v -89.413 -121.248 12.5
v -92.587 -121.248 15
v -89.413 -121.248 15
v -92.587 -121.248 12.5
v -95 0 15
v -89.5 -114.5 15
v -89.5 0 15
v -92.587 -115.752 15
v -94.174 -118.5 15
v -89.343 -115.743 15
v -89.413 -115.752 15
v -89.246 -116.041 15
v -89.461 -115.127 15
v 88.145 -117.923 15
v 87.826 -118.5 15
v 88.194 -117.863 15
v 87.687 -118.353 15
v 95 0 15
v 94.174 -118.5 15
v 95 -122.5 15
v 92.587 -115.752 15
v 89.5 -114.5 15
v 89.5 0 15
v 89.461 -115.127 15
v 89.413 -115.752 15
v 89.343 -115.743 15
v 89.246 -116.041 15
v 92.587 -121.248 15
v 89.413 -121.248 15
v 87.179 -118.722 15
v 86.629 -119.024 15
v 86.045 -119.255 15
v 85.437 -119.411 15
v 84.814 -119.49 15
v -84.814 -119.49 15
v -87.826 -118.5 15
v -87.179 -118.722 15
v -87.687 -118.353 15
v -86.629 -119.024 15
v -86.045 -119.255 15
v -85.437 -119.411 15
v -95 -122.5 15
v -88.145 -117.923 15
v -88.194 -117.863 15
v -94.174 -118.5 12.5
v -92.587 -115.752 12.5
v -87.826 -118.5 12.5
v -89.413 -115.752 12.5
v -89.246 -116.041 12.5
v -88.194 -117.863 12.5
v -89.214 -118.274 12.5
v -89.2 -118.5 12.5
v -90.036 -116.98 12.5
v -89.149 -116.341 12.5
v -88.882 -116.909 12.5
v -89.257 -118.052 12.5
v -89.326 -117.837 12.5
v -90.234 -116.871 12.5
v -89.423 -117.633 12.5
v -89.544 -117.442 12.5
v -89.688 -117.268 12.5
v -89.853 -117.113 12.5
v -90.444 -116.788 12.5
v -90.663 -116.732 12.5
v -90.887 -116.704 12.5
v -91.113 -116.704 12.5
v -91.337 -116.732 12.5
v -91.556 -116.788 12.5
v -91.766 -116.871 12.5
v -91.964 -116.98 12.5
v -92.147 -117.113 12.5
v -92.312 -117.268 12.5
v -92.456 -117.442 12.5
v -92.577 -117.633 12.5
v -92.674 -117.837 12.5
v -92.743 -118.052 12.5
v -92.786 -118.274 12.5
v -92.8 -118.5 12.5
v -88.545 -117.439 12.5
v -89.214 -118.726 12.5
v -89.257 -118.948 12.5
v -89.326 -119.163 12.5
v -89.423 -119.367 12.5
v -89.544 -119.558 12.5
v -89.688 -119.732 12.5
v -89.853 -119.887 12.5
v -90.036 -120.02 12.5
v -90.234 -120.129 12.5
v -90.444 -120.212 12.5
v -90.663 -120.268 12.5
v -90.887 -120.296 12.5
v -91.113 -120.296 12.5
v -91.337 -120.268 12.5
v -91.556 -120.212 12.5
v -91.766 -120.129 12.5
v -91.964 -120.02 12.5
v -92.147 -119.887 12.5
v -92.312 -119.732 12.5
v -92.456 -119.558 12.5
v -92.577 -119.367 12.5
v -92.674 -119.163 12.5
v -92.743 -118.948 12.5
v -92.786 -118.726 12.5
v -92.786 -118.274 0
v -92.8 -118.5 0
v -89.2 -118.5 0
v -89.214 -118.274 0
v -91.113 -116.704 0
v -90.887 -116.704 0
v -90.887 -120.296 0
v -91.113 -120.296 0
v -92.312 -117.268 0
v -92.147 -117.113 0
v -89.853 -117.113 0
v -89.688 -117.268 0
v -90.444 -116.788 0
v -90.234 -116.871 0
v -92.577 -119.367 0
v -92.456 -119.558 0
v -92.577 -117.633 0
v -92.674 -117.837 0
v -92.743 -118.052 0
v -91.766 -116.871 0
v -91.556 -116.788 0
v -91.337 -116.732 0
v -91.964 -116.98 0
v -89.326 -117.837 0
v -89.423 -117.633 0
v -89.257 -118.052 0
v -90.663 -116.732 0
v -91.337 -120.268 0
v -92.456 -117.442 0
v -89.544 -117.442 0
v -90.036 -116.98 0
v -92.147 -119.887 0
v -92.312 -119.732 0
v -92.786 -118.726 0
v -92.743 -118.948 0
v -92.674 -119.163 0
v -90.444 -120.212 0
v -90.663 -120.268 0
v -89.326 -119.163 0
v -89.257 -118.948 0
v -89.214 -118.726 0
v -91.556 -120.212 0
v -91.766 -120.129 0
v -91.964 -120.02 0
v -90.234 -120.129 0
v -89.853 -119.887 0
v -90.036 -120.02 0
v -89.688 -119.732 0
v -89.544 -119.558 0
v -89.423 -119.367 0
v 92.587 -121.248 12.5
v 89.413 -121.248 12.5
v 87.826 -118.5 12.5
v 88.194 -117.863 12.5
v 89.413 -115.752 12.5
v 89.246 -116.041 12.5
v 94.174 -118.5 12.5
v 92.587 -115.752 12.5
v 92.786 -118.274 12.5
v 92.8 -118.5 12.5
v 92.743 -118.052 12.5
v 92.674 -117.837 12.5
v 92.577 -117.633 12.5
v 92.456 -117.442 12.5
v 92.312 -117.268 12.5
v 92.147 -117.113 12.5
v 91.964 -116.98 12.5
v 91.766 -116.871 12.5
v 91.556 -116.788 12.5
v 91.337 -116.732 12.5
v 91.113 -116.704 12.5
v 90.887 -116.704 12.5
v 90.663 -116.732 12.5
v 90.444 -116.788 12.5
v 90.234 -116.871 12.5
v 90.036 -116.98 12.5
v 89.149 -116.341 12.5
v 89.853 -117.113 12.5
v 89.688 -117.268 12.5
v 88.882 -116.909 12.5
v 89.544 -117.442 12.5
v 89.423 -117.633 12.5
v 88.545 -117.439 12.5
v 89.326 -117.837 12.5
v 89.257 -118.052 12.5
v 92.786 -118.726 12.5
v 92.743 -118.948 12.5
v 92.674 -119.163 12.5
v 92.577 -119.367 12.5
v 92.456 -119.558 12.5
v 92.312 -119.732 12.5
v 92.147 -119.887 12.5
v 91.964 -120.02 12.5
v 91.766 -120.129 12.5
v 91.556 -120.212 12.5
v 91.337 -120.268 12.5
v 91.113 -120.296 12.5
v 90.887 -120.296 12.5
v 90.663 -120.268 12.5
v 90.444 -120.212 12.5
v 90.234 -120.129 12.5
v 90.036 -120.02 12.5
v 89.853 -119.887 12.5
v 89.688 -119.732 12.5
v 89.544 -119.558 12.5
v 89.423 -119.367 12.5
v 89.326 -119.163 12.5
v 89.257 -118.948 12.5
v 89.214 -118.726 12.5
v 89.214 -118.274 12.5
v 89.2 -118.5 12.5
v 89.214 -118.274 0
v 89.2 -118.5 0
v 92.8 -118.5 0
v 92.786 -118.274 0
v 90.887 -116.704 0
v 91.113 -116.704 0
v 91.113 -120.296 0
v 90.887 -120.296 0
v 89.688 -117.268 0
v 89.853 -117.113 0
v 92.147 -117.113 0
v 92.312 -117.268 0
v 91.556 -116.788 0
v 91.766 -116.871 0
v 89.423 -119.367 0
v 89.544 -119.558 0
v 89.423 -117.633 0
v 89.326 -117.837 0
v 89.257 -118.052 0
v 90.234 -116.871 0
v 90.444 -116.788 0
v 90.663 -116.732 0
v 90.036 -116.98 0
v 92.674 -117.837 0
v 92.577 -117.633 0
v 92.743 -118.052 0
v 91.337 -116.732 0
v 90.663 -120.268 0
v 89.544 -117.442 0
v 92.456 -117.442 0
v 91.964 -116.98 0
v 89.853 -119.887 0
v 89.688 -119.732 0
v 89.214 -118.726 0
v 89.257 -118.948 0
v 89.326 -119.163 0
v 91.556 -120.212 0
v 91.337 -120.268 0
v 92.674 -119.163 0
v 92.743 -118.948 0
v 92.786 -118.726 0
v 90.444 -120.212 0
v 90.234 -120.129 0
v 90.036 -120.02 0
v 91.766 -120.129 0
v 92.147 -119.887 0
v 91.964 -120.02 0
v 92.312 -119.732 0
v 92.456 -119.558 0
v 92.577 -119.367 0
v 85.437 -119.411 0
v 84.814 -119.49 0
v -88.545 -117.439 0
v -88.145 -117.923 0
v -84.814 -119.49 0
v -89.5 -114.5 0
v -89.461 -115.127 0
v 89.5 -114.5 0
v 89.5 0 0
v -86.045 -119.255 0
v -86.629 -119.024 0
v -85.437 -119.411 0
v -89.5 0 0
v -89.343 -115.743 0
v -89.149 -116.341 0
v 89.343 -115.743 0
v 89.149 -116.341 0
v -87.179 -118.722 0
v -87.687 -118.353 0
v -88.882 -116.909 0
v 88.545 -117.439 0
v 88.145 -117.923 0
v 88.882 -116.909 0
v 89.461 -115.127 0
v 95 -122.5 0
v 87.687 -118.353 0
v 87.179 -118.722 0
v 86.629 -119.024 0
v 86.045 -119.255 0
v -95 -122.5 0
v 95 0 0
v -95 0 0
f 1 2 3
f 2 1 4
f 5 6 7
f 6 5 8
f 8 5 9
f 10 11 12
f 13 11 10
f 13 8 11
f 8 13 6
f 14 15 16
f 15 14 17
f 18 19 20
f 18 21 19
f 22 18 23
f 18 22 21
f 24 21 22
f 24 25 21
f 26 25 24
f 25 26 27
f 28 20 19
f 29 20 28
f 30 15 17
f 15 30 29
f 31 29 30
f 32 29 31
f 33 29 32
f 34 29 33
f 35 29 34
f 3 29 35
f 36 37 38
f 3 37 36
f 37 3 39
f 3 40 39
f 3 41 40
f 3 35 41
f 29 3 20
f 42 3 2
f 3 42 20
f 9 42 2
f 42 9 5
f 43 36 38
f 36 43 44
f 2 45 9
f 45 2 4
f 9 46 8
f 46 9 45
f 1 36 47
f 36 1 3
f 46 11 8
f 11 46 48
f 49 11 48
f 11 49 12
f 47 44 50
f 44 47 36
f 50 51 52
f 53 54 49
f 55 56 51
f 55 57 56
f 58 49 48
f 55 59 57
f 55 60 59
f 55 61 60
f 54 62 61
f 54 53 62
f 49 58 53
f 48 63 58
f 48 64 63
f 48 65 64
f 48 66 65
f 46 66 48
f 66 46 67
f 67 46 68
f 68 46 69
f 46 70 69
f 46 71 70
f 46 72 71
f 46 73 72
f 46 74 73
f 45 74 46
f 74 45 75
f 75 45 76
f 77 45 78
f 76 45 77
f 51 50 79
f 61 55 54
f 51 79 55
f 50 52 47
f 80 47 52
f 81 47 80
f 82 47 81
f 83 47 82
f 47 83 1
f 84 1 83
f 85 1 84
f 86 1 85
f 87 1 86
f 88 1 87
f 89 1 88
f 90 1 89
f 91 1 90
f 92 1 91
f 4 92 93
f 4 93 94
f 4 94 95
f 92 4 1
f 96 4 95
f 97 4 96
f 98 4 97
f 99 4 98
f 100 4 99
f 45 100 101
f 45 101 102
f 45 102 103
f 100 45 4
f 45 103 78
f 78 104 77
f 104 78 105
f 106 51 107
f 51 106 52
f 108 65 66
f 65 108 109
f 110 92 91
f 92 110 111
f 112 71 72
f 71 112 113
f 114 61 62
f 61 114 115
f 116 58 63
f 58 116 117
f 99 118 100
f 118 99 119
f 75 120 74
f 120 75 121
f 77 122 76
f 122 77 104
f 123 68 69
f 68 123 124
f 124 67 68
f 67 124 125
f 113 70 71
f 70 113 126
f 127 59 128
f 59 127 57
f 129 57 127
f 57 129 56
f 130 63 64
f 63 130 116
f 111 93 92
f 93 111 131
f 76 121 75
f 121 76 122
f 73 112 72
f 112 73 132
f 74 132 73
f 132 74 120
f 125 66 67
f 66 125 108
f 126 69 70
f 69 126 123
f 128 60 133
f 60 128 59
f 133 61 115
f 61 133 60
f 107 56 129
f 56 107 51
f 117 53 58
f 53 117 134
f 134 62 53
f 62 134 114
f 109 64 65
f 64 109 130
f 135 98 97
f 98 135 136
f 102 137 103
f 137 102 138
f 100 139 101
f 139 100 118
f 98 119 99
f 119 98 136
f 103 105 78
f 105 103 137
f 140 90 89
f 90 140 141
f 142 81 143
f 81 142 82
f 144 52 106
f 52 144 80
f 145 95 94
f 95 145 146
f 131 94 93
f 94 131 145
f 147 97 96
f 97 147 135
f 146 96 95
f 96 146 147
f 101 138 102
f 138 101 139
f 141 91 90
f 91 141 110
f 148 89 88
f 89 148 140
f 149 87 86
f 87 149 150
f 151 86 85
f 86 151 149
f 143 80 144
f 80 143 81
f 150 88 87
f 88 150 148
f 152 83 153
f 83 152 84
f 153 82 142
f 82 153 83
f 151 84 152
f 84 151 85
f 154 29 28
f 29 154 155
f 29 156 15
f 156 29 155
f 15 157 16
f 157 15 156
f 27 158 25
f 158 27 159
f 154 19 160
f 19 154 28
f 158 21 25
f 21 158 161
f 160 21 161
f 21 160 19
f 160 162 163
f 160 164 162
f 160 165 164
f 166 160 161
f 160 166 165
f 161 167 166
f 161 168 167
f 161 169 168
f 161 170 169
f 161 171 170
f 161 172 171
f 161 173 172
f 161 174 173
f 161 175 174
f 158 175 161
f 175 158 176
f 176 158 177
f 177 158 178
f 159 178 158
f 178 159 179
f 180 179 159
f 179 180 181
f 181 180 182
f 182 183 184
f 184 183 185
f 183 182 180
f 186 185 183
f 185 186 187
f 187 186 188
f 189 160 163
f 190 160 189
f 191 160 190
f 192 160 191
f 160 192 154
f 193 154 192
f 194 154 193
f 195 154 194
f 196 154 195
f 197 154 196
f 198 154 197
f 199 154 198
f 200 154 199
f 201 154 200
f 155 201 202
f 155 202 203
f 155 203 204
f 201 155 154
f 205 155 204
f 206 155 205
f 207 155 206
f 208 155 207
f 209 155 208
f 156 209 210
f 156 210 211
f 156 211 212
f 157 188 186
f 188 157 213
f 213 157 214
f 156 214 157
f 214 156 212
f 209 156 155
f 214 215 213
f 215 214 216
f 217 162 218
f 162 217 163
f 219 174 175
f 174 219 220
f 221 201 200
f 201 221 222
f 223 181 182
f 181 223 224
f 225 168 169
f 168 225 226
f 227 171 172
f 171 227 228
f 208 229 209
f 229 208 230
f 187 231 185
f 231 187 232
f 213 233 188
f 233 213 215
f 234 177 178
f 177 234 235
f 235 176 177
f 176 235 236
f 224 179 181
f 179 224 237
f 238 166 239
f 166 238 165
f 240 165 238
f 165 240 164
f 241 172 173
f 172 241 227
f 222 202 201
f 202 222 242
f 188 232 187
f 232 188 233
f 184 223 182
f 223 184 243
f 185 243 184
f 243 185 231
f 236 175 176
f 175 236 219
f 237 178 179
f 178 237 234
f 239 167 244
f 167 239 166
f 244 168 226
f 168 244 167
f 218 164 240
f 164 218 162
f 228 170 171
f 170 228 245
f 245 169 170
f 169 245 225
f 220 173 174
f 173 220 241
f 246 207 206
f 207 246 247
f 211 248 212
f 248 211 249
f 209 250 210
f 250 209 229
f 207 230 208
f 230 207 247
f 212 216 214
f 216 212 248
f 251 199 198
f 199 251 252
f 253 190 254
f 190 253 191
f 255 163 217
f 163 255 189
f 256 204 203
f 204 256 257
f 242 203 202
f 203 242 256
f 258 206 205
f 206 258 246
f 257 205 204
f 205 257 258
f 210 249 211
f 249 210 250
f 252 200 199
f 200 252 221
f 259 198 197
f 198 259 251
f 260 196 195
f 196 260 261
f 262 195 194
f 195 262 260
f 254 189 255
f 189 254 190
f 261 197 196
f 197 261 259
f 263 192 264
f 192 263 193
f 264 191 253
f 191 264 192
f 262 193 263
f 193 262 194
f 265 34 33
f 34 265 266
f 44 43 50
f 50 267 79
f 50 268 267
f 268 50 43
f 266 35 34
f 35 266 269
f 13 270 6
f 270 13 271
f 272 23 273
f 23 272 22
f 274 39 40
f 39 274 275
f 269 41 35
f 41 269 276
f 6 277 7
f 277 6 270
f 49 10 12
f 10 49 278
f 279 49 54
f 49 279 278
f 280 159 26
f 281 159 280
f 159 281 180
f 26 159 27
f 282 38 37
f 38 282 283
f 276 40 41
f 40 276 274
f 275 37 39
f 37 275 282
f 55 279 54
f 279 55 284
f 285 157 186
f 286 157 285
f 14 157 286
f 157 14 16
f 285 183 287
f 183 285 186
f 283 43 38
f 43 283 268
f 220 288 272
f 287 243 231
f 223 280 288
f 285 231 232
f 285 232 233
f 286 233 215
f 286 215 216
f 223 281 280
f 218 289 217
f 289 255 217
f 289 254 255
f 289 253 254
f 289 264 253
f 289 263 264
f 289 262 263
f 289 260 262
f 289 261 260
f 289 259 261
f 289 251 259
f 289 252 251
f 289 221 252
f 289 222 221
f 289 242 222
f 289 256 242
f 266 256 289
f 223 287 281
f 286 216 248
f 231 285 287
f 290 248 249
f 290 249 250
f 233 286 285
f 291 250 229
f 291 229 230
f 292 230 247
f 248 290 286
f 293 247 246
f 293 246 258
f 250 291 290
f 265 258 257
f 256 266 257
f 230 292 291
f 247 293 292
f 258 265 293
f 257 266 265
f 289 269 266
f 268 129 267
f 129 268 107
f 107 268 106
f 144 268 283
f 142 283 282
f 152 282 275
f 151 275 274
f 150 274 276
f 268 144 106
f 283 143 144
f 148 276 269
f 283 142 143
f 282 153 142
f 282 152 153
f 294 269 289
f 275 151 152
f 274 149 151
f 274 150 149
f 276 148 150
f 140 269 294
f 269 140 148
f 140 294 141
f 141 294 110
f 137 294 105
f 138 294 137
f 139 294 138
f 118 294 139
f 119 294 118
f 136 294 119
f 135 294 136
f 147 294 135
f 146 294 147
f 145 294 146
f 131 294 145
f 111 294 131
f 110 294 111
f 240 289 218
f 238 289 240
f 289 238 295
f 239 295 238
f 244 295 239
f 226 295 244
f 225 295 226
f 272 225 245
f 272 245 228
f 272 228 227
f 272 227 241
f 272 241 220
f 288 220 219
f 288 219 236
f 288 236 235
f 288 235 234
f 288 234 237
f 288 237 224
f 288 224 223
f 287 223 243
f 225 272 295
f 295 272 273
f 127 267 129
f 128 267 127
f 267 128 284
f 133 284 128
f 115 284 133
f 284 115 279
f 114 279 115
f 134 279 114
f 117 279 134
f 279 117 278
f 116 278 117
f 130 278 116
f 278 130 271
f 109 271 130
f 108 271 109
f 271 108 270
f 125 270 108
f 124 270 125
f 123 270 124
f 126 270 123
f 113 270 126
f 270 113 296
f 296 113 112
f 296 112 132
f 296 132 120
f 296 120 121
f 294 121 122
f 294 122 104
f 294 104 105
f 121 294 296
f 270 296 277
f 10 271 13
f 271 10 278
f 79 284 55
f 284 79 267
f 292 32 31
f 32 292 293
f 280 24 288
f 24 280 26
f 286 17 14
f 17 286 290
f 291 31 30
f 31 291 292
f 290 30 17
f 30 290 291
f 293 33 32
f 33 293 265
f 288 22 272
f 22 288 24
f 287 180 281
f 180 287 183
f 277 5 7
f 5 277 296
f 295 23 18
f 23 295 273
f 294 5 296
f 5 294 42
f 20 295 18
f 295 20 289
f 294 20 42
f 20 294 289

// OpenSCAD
$fn = 50;


difference() {
	union() {
		translate(v = [-95.0000000000, -122.5000000000, 0]) {
			cube(size = [190, 245, 15]);
		}
	}
	union() {
		translate(v = [-91.0000000000, -118.5000000000, -3]) {
			rotate(a = [0, 180, 0]) {
				difference() {
					union() {
						translate(v = [0, 0, -18.0000000000]) {
							rotate(a = [0, 0, 0]) {
								difference() {
									union() {
										#linear_extrude(height = 2.5000000000) {
											polygon(points = [[3.1735000000, 0.0000000000], [1.5867500000, 2.7483316189], [-1.5867500000, 2.7483316189], [-3.1735000000, 0.0000000000], [-1.5867500000, -2.7483316189], [1.5867500000, -2.7483316189]]);
										}
									}
									union();
								}
							}
						}
						translate(v = [0, 0, -18.0000000000]) {
							rotate(a = [0, 0, 0]) {
								difference() {
									union() {
										#linear_extrude(height = 2.5000000000) {
											polygon(points = [[3.1735000000, 0.0000000000], [1.5867500000, 2.7483316189], [-1.5867500000, 2.7483316189], [-3.1735000000, 0.0000000000], [-1.5867500000, -2.7483316189], [1.5867500000, -2.7483316189]]);
										}
									}
									union();
								}
							}
						}
						translate(v = [0, 0, -18.0000000000]) {
							rotate(a = [0, 0, 0]) {
								difference() {
									union() {
										#linear_extrude(height = 2.5000000000) {
											polygon(points = [[3.1735000000, 0.0000000000], [1.5867500000, 2.7483316189], [-1.5867500000, 2.7483316189], [-3.1735000000, 0.0000000000], [-1.5867500000, -2.7483316189], [1.5867500000, -2.7483316189]]);
										}
									}
									union();
								}
							}
						}
						#translate(v = [0, 0, -1.7000000000]) {
							cylinder(h = 1.7000000000, r1 = 1.5000000000, r2 = 2.4000000000);
						}
						#translate(v = [0, 0, -18.0000000000]) {
							cylinder(h = 18, r = 1.5000000000);
						}
						#translate(v = [0, 0, -18.0000000000]) {
							cylinder(h = 18, r = 1.8000000000);
						}
						#translate(v = [0, 0, -18.0000000000]) {
							cylinder(h = 18, r = 1.5000000000);
						}
					}
					union();
				}
			}
		}
		translate(v = [91.0000000000, -118.5000000000, -3]) {
			rotate(a = [0, 180, 0]) {
				difference() {
					union() {
						translate(v = [0, 0, -18.0000000000]) {
							rotate(a = [0, 0, 0]) {
								difference() {
									union() {
										#linear_extrude(height = 2.5000000000) {
											polygon(points = [[3.1735000000, 0.0000000000], [1.5867500000, 2.7483316189], [-1.5867500000, 2.7483316189], [-3.1735000000, 0.0000000000], [-1.5867500000, -2.7483316189], [1.5867500000, -2.7483316189]]);
										}
									}
									union();
								}
							}
						}
						translate(v = [0, 0, -18.0000000000]) {
							rotate(a = [0, 0, 0]) {
								difference() {
									union() {
										#linear_extrude(height = 2.5000000000) {
											polygon(points = [[3.1735000000, 0.0000000000], [1.5867500000, 2.7483316189], [-1.5867500000, 2.7483316189], [-3.1735000000, 0.0000000000], [-1.5867500000, -2.7483316189], [1.5867500000, -2.7483316189]]);
										}
									}
									union();
								}
							}
						}
						translate(v = [0, 0, -18.0000000000]) {
							rotate(a = [0, 0, 0]) {
								difference() {
									union() {
										#linear_extrude(height = 2.5000000000) {
											polygon(points = [[3.1735000000, 0.0000000000], [1.5867500000, 2.7483316189], [-1.5867500000, 2.7483316189], [-3.1735000000, 0.0000000000], [-1.5867500000, -2.7483316189], [1.5867500000, -2.7483316189]]);
										}
									}
									union();
								}
							}
						}
						#translate(v = [0, 0, -1.7000000000]) {
							cylinder(h = 1.7000000000, r1 = 1.5000000000, r2 = 2.4000000000);
						}
						#translate(v = [0, 0, -18.0000000000]) {
							cylinder(h = 18, r = 1.5000000000);
						}
						#translate(v = [0, 0, -18.0000000000]) {
							cylinder(h = 18, r = 1.8000000000);
						}
						#translate(v = [0, 0, -18.0000000000]) {
							cylinder(h = 18, r = 1.5000000000);
						}
					}
					union();
				}
			}
		}
		translate(v = [-91.0000000000, 118.5000000000, -3]) {
			rotate(a = [0, 180, 0]) {
				difference() {
					union() {
						translate(v = [0, 0, -18.0000000000]) {
							rotate(a = [0, 0, 0]) {
								difference() {
									union() {
										#linear_extrude(height = 2.5000000000) {
											polygon(points = [[3.1735000000, 0.0000000000], [1.5867500000, 2.7483316189], [-1.5867500000, 2.7483316189], [-3.1735000000, 0.0000000000], [-1.5867500000, -2.7483316189], [1.5867500000, -2.7483316189]]);
										}
									}
									union();
								}
							}
						}
						translate(v = [0, 0, -18.0000000000]) {
							rotate(a = [0, 0, 0]) {
								difference() {
									union() {
										#linear_extrude(height = 2.5000000000) {
											polygon(points = [[3.1735000000, 0.0000000000], [1.5867500000, 2.7483316189], [-1.5867500000, 2.7483316189], [-3.1735000000, 0.0000000000], [-1.5867500000, -2.7483316189], [1.5867500000, -2.7483316189]]);
										}
									}
									union();
								}
							}
						}
						translate(v = [0, 0, -18.0000000000]) {
							rotate(a = [0, 0, 0]) {
								difference() {
									union() {
										#linear_extrude(height = 2.5000000000) {
											polygon(points = [[3.1735000000, 0.0000000000], [1.5867500000, 2.7483316189], [-1.5867500000, 2.7483316189], [-3.1735000000, 0.0000000000], [-1.5867500000, -2.7483316189], [1.5867500000, -2.7483316189]]);
										}
									}
									union();
								}
							}
						}
						#translate(v = [0, 0, -1.7000000000]) {
							cylinder(h = 1.7000000000, r1 = 1.5000000000, r2 = 2.4000000000);
						}
						#translate(v = [0, 0, -18.0000000000]) {
							cylinder(h = 18, r = 1.5000000000);
						}
						#translate(v = [0, 0, -18.0000000000]) {
							cylinder(h = 18, r = 1.8000000000);
						}
						#translate(v = [0, 0, -18.0000000000]) {
							cylinder(h = 18, r = 1.5000000000);
						}
					}
					union();
				}
			}
		}
		translate(v = [91.0000000000, 118.5000000000, -3]) {
			rotate(a = [0, 180, 0]) {
				difference() {
					union() {
						translate(v = [0, 0, -18.0000000000]) {
							rotate(a = [0, 0, 0]) {
								difference() {
									union() {
										#linear_extrude(height = 2.5000000000) {
											polygon(points = [[3.1735000000, 0.0000000000], [1.5867500000, 2.7483316189], [-1.5867500000, 2.7483316189], [-3.1735000000, 0.0000000000], [-1.5867500000, -2.7483316189], [1.5867500000, -2.7483316189]]);
										}
									}
									union();
								}
							}
						}
						translate(v = [0, 0, -18.0000000000]) {
							rotate(a = [0, 0, 0]) {
								difference() {
									union() {
										#linear_extrude(height = 2.5000000000) {
											polygon(points = [[3.1735000000, 0.0000000000], [1.5867500000, 2.7483316189], [-1.5867500000, 2.7483316189], [-3.1735000000, 0.0000000000], [-1.5867500000, -2.7483316189], [1.5867500000, -2.7483316189]]);
										}
									}
									union();
								}
							}
						}
						translate(v = [0, 0, -18.0000000000]) {
							rotate(a = [0, 0, 0]) {
								difference() {
									union() {
										#linear_extrude(height = 2.5000000000) {
											polygon(points = [[3.1735000000, 0.0000000000], [1.5867500000, 2.7483316189], [-1.5867500000, 2.7483316189], [-3.1735000000, 0.0000000000], [-1.5867500000, -2.7483316189], [1.5867500000, -2.7483316189]]);
										}
									}
									union();
								}
							}
						}
						#translate(v = [0, 0, -1.7000000000]) {
							cylinder(h = 1.7000000000, r1 = 1.5000000000, r2 = 2.4000000000);
						}
						#translate(v = [0, 0, -18.0000000000]) {
							cylinder(h = 18, r = 1.5000000000);
						}
						#translate(v = [0, 0, -18.0000000000]) {
							cylinder(h = 18, r = 1.8000000000);
						}
						#translate(v = [0, 0, -18.0000000000]) {
							cylinder(h = 18, r = 1.5000000000);
						}
					}
					union();
				}
			}
		}
		#hull() {
			translate(v = [-84.5000000000, 114.5000000000, 0]) {
				cylinder(h = 15, r = 5);
			}
			translate(v = [84.5000000000, 114.5000000000, 0]) {
				cylinder(h = 15, r = 5);
			}
			translate(v = [-84.5000000000, -114.5000000000, 0]) {
				cylinder(h = 15, r = 5);
			}
			translate(v = [84.5000000000, -114.5000000000, 0]) {
				cylinder(h = 15, r = 5);
			}
		}
		translate(v = [-250.0000000000, 0, -250.0000000000]) {
			cube(size = [500, 500, 500]);
		}
		translate(v = [-250.0000000000, 0, -250.0000000000]) {
			cube(size = [500, 500, 500]);
		}
		translate(v = [-250.0000000000, 0, -250.0000000000]) {
			cube(size = [500, 500, 500]);
		}
	}
}
